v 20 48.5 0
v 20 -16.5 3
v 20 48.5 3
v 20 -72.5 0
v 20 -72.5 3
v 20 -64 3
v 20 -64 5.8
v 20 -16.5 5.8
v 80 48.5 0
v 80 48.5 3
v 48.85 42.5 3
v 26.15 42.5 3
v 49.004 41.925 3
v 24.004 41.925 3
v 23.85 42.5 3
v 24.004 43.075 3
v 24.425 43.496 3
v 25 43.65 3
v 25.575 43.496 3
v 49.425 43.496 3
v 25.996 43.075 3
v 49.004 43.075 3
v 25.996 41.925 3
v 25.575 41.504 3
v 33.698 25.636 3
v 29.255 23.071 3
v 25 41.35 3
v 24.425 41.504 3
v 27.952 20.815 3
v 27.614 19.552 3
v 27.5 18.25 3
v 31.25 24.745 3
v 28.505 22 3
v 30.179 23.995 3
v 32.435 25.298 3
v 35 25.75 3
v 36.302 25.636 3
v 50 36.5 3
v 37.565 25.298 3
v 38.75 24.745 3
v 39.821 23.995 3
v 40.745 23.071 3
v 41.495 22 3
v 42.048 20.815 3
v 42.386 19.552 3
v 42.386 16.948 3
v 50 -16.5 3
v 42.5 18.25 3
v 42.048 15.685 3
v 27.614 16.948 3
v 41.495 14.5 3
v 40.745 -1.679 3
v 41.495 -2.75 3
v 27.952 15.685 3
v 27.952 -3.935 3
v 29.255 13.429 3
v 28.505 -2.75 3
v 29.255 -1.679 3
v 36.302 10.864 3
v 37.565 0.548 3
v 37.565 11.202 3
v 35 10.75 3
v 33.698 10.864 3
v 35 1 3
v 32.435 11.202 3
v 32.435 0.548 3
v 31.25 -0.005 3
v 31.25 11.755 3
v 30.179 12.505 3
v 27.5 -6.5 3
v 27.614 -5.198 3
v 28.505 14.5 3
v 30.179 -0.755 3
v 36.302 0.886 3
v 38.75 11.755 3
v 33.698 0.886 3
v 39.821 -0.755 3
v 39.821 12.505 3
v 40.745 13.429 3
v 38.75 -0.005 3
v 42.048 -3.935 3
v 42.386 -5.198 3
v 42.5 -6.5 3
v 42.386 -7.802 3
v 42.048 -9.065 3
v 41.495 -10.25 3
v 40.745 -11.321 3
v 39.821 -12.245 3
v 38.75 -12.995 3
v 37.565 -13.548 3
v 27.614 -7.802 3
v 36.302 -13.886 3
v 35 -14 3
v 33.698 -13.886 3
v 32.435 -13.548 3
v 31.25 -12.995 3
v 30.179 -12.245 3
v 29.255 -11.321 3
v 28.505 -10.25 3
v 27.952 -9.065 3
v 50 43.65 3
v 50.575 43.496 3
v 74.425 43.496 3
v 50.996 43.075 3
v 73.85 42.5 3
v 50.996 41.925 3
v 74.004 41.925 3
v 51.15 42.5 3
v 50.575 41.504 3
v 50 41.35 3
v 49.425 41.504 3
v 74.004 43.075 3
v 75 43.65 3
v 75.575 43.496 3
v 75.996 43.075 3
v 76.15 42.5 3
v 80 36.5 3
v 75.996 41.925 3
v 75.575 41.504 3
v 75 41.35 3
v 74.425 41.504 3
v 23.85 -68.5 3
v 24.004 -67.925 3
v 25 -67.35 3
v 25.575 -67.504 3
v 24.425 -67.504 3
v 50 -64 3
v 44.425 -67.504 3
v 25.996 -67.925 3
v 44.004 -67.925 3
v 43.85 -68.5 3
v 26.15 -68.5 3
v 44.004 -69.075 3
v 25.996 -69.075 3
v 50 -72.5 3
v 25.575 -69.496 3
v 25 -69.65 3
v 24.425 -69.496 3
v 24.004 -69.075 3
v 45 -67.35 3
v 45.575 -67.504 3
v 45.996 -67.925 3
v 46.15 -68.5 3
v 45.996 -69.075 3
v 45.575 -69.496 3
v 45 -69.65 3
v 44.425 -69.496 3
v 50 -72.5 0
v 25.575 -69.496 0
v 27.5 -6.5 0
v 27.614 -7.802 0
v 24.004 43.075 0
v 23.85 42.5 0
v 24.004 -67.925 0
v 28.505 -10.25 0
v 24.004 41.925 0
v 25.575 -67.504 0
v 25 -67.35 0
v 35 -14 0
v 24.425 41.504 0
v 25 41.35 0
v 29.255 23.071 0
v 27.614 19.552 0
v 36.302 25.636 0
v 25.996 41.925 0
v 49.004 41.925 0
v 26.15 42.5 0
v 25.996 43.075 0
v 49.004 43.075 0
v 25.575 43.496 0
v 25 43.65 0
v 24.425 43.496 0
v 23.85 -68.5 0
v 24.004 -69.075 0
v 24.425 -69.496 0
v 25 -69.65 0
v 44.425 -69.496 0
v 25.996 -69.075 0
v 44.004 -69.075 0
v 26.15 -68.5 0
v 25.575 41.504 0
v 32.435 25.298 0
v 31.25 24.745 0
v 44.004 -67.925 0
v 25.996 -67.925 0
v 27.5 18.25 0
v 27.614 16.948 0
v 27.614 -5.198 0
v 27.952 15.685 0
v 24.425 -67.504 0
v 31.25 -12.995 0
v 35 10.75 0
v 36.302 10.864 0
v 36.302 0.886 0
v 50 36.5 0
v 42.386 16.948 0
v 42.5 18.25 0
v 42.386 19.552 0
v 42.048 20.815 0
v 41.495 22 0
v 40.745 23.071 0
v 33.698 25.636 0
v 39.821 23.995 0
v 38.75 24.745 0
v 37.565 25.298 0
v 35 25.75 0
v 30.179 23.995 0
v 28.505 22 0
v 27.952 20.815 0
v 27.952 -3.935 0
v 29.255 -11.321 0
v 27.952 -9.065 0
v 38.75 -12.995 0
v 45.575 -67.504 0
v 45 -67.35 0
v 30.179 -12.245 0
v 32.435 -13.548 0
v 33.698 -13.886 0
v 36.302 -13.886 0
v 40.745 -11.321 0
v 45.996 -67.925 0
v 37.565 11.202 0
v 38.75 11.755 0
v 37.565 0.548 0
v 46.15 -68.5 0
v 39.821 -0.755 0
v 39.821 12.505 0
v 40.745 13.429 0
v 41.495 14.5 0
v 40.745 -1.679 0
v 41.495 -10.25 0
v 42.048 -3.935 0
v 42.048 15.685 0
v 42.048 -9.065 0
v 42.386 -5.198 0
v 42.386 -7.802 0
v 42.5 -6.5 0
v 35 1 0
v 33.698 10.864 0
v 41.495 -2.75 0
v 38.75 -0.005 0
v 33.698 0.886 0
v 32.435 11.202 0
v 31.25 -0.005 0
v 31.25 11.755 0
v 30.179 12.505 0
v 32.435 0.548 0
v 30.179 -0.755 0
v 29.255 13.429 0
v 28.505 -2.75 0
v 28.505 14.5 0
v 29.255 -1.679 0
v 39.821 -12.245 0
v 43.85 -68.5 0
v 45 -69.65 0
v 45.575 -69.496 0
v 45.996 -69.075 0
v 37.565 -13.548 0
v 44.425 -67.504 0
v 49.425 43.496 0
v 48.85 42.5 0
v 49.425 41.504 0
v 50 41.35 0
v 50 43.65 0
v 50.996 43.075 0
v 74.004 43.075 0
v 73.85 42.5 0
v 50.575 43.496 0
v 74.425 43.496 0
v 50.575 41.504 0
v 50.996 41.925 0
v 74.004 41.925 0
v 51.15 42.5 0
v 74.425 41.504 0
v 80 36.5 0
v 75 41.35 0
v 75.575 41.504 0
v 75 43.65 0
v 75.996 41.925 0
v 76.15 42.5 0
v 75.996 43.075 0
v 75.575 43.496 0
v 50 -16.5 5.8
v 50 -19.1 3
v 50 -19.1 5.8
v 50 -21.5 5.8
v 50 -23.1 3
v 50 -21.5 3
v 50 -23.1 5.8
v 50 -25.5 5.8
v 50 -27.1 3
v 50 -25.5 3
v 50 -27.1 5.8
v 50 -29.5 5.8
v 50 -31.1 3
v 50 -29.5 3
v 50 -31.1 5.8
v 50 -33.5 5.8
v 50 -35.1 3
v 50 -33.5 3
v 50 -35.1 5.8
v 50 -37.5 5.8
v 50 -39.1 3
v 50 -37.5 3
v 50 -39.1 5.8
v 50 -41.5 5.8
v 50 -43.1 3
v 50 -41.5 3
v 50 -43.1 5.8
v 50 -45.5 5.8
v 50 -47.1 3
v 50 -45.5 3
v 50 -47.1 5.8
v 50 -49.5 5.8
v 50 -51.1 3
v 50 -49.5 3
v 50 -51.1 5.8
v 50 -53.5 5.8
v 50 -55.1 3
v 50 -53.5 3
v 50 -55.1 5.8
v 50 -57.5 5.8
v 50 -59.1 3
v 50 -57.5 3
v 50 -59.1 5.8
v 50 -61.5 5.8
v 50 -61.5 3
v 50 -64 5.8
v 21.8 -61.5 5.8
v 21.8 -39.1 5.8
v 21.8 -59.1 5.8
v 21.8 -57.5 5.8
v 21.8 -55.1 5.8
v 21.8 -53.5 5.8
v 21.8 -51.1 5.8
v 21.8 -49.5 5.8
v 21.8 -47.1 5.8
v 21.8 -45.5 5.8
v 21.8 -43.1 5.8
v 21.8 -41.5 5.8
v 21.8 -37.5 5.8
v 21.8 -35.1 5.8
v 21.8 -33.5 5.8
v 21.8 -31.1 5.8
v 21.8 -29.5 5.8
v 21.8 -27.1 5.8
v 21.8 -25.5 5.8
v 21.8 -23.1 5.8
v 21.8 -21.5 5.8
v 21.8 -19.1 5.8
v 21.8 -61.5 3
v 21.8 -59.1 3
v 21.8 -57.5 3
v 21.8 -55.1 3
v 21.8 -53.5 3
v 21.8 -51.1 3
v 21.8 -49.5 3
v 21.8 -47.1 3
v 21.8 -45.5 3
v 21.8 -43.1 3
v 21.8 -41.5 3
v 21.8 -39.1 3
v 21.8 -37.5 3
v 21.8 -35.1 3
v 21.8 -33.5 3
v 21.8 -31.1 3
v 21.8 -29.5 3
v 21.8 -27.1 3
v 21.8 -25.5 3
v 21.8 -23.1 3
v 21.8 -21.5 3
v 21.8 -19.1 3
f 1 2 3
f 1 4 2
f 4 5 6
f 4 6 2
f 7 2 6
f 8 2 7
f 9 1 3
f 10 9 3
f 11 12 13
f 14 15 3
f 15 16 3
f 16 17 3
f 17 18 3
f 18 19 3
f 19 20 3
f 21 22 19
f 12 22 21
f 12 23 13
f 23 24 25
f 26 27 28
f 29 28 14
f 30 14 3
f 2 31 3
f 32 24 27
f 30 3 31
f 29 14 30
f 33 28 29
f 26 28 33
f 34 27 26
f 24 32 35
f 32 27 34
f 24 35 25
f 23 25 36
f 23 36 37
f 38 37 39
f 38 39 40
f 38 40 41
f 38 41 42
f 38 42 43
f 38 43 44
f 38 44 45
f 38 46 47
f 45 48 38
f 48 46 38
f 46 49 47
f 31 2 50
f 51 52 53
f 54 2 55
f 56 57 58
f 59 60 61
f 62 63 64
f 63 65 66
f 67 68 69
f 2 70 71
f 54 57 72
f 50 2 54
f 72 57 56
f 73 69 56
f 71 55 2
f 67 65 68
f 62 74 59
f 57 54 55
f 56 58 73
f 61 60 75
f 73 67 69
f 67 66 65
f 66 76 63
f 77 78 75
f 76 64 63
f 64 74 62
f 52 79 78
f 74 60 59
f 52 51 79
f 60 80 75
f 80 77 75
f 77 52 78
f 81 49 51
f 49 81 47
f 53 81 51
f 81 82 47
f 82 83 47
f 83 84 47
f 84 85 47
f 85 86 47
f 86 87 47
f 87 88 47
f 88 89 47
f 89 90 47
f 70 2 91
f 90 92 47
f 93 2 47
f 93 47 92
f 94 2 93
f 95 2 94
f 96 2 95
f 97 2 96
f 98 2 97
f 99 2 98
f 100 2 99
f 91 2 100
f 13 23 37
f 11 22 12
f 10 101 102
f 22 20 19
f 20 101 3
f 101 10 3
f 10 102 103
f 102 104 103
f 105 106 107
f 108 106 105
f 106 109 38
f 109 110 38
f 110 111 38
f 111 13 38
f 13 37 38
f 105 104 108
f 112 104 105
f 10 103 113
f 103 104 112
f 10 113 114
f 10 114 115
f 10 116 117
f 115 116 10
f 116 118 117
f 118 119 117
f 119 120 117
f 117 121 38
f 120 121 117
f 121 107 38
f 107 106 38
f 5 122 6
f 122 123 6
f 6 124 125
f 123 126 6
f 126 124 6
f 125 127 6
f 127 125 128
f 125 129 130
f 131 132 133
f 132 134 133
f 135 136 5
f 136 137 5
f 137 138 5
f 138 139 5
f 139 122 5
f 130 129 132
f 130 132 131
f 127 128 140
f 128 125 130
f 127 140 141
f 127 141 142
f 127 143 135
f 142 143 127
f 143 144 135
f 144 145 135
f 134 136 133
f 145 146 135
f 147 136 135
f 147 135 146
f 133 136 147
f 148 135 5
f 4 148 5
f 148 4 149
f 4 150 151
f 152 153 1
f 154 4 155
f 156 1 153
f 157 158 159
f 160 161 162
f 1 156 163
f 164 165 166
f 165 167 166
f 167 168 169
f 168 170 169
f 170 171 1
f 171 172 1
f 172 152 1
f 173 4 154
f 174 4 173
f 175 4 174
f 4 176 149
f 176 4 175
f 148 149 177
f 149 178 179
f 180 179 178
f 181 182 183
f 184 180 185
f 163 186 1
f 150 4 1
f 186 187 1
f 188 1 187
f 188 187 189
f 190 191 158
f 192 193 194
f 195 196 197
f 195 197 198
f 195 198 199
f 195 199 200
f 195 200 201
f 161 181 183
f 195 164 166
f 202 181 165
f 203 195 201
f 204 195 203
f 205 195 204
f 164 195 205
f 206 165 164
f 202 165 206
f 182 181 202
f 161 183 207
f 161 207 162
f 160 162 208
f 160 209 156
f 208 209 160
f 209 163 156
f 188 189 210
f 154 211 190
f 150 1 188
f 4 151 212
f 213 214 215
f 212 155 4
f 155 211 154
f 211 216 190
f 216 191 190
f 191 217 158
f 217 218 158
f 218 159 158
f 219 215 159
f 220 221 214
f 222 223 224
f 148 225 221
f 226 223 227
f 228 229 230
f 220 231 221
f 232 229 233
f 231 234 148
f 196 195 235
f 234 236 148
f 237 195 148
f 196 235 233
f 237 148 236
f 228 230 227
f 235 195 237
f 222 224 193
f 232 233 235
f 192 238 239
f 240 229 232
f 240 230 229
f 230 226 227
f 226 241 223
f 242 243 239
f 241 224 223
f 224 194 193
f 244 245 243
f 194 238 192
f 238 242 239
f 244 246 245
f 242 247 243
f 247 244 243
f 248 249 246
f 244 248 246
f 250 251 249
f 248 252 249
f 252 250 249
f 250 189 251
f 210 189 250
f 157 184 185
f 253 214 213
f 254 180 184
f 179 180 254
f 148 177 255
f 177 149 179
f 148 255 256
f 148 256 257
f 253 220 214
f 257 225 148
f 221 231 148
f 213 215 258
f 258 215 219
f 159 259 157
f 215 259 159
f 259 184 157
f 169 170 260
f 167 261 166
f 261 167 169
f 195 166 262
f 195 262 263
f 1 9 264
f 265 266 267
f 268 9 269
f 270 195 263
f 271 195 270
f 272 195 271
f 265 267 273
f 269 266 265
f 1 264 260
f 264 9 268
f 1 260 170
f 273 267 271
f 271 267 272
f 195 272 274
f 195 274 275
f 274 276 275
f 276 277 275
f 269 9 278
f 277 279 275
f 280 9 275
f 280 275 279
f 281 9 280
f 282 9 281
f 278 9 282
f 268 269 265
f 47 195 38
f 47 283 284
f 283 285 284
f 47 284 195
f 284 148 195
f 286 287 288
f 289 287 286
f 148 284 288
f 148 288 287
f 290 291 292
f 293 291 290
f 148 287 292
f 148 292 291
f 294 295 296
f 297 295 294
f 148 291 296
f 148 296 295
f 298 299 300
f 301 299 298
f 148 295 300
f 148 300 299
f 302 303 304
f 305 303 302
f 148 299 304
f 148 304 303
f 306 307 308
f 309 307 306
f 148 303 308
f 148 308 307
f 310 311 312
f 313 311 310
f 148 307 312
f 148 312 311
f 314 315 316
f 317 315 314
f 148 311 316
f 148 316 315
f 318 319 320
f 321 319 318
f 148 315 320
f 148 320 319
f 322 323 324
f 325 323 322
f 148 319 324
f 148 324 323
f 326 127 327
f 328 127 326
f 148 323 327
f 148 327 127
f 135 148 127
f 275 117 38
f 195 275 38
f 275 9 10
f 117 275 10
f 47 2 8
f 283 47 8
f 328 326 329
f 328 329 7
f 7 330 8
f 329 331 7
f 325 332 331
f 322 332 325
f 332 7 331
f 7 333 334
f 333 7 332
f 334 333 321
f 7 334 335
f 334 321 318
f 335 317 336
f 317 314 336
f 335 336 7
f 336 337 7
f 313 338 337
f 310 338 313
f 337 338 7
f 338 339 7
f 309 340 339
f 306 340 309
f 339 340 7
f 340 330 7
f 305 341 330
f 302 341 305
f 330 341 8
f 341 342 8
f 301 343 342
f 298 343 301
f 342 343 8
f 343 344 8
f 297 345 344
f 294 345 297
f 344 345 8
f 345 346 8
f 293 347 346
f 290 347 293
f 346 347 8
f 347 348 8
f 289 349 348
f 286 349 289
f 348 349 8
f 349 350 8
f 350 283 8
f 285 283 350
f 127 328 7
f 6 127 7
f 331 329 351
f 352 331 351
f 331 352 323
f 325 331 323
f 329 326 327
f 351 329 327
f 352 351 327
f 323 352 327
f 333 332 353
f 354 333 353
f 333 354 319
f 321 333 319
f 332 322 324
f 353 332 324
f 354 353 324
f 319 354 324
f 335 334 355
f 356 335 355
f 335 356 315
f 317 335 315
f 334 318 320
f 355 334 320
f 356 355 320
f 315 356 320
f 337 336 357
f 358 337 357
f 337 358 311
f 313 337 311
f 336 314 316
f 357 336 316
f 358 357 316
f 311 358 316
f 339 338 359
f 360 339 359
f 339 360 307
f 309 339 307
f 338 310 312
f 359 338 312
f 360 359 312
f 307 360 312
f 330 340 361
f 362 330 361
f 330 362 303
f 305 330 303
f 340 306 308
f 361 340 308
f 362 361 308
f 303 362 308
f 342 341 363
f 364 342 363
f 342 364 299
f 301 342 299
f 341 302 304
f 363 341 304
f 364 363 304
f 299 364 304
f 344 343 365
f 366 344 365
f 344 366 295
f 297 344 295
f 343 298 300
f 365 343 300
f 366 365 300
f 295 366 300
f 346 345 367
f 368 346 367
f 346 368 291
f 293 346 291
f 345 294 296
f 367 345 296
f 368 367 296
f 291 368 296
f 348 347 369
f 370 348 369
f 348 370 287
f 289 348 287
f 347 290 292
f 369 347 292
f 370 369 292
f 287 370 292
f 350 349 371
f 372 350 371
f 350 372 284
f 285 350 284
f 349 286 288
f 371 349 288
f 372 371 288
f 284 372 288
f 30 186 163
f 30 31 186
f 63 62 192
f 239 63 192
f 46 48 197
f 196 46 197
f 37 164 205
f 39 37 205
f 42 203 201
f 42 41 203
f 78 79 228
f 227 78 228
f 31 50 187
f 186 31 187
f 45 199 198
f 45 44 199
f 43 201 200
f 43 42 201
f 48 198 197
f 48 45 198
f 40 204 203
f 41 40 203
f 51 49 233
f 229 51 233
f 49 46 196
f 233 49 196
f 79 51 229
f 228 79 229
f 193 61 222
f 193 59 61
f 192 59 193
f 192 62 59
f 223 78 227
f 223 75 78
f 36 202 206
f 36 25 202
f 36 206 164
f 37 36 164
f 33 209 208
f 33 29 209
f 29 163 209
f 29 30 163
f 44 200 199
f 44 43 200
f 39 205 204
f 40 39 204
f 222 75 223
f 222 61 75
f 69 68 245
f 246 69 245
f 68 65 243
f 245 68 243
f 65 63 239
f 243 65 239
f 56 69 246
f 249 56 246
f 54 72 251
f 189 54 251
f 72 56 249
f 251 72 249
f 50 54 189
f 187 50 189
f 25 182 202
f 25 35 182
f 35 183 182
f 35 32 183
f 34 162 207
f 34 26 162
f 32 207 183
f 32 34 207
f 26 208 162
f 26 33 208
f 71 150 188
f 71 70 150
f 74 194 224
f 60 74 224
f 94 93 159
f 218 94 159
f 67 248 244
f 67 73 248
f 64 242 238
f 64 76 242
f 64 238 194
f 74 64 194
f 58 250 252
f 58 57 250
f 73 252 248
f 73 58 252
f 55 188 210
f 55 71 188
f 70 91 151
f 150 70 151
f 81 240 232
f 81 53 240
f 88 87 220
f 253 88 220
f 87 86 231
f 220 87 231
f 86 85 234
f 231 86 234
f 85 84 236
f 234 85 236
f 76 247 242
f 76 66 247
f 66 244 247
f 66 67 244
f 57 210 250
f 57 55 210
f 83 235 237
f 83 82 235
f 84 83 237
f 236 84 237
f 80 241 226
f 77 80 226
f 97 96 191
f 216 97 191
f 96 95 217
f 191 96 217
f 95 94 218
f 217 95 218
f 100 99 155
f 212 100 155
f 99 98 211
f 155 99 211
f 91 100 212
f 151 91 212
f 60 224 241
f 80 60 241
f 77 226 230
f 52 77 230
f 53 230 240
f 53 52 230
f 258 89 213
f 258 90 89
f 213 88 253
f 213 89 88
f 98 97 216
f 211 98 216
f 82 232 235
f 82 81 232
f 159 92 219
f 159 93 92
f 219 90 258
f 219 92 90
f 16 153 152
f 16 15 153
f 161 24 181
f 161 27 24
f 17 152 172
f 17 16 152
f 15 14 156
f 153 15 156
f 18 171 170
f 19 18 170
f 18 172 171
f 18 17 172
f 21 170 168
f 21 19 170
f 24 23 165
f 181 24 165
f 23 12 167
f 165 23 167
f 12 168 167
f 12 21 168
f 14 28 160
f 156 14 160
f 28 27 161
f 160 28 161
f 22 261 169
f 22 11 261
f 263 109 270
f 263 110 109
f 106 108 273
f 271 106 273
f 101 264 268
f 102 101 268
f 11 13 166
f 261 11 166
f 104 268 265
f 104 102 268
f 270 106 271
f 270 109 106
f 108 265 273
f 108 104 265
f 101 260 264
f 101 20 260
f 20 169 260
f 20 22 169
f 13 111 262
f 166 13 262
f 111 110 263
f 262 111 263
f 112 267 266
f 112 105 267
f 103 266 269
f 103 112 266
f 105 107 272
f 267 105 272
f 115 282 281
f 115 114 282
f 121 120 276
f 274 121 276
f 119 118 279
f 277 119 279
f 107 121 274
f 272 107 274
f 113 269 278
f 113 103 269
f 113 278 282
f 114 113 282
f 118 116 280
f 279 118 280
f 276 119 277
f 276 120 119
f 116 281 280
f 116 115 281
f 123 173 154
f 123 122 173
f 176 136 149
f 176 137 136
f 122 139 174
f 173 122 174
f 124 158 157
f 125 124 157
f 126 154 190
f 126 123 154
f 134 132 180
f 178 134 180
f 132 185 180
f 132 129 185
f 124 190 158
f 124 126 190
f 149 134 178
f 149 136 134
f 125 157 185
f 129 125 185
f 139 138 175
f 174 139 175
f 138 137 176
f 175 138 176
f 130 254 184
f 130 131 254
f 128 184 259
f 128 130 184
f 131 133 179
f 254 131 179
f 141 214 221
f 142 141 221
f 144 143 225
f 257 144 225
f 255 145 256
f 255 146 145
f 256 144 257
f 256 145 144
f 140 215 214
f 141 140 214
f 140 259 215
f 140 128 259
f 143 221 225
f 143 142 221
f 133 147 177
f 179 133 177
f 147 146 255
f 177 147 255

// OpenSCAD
// Desktop ball bearing spool holder
// Written by Joe Cabana  3/1/2014
// Added bigger spool sizes 4/8/2014
// You are free to use and/or modify this software for non-comercial
// uses as long as you retain this message. Thanks.

// Print at .25 layer height, 25% infill, 2 extra shells

DoArms = 1;  // Set to non-zero to draw the outer bracket support arms, 0 to draw the rest of the stuff

Show = 0;  // Set to non-zero to show bearings

// Spool dimensions
SpoolCnt = 11;  // Number of spool sizes
SpoolWid = [85,81,77,73,69,65,61,57,53,49,45];  // Width of filament spool the first one must be the biggest, and the last one the smallest.
SpoolSpace = 1;  // Extra space on each side of the spool

// Mounting Latch dimensions
LatchWid = 45;  // Width of latching section

// Bearing mount dimensions
SplShdDia = 30;  // Diameter of spool guiding shoulder
SplShdThk = 2;  // Thickness of spool guiding shoulder
BearShdDia = 11;  // Diameter of bearing mount shoulder
BearShdThk = .25;  // Thickness of bearing mount shoulder
BearInDia = 8;  // Diameter of bearing center hole
BearOutDia = 22;  // Outer diameter of bearing
BearThk = 7;  // Thickness of the bearing
BearWashThk = 2.5;  // Thickness of bearing mounting washers

// Bracket dimensions
LatchOff = 0;  // Offset into bracket of latch slot
InBrkThk = 12;  // Thickness of bracket on back of replicator
OutBrkThk = 8;  // Thickness of bracket on outside
BrkWid = 100; // Width of bracket on back of replicator
InBrkHgt = 90;  // Height of bracket on back or replicator
OutBrkHgt = 30;  // Height of outside bracket
SlotDepth = 3; // Depth of slots to hold outer bracket
SlotWidth = 2; // Width of slots to hold outer bracket
SlotClear = .2;  // Clearance for outer bracket slots
ArmWid = (2 * SplShdThk) + (2 * OutBrkThk) + InBrkThk + SpoolWid[0] + SpoolSpace + SlotWidth + 1;  // Width of outer bracket arms
ArmThk = 3;  // Thickness of outer bracket arms

// Screw hole sizes
ScrewDia = 1.8; // Diameter of screw hole
ScrewClear = 2.3; // Diameter of screw clearance hole


	
	translate([OutBrkHgt/2+5,ArmWid/2-InBrkThk,ArmThk])
		rotate([180,0,0])
			Arm(1);

	




// Routine to draw the outer bracket mounting arm
module Arm(Invert = 0)
{
	SlotBlockWid = SpoolWid[0]-SpoolWid[SpoolCnt-1]+(3*SlotWidth) + 1.5;  // Width of block to hold slots

	difference()
	{
		// Arm
		union()
		{
			cube([OutBrkHgt,ArmWid,ArmThk]);  // Arm
			cube([OutBrkHgt*2,InBrkThk,ArmThk]);  // Extra bracing
			if (Invert)
				translate([0,ArmWid-SlotBlockWid-OutBrkThk-.5,-(SlotDepth-SlotClear)])
					cube([OutBrkHgt,SlotBlockWid,ArmThk+SlotDepth-SlotClear]);  // Outer bracket support
			else
				translate([0,ArmWid-SlotBlockWid-OutBrkThk-.5,0])
					cube([OutBrkHgt,SlotBlockWid,ArmThk+SlotDepth-SlotClear]);  // Outer bracket support
		}

		// Outer bracket slots
		for (cnt = [0 : (SpoolCnt-1)])
			if (Invert)
				translate([SlotWidth-SlotClear,(2*SplShdThk)+OutBrkThk+InBrkThk+SpoolWid[cnt]+SpoolSpace-(SlotWidth+(2*SlotClear)),-(ArmThk+1)])
					cube([OutBrkHgt,SlotWidth+(2*SlotClear),SlotDepth+1]);  // Outer bracket support
			else
				translate([SlotWidth-SlotClear,(2*SplShdThk)+OutBrkThk+InBrkThk+SpoolWid[cnt]+SpoolSpace-(SlotWidth+(2*SlotClear)),ArmThk])
					cube([OutBrkHgt,SlotWidth+(2*SlotClear),SlotDepth+1]);  // Outer bracket support

		// Holes
		translate([OutBrkHgt/2,ArmWid/4,-1])
			cylinder(ArmThk+2,OutBrkHgt/4,OutBrkHgt/4,$fn=36);
		translate([OutBrkHgt/2,ArmWid/2.2,-1])
			cylinder(ArmThk+2,OutBrkHgt/4,OutBrkHgt/4,$fn=36);
//		translate([OutBrkHgt/2,ArmWid/1.5,-1])
//			cylinder(ArmThk+2,OutBrkHgt/4,OutBrkHgt/4,$fn=36);

		// Screw holes
		translate([5,InBrkThk/2,-1])
			cylinder(ArmThk+2,ScrewClear/2,ScrewClear/2,$fn=12);
		translate([OutBrkHgt,InBrkThk/2,-1])
			cylinder(ArmThk+2,ScrewClear/2,ScrewClear/2,$fn=12);
		translate([2*OutBrkHgt-5,InBrkThk/2,-1])
			cylinder(ArmThk+2,ScrewClear/2,ScrewClear/2,$fn=12);
		translate([5,ArmWid-OutBrkThk/2,-1])
			cylinder(ArmThk+2,ScrewClear/2,ScrewClear/2,$fn=12);
		translate([OutBrkHgt-5,ArmWid-OutBrkThk/2,-1])
			cylinder(ArmThk+2,ScrewClear/2,ScrewClear/2,$fn=12);
	}
}

// Routine to draw the outside bracket
module OutBracket(Show = 0)
{
	difference()
	{
		union()
		{
			difference()
			{
				// Outside plate
				cube([OutBrkHgt,BrkWid,OutBrkThk]);
		
				// Hole in center
				translate([5,SplShdDia,-1])
					cube([OutBrkHgt-10,BrkWid-2*SplShdDia,OutBrkThk+2]);
			}
				// Bearing mounts
			translate([OutBrkHgt-SplShdDia/2,SplShdDia/2,0])
				BearingMnt(Show,OutBrkThk);
			translate([OutBrkHgt-SplShdDia/2,BrkWid-SplShdDia/2,0])
				BearingMnt(Show,OutBrkThk);
		}
		
		// Cut down for slots
		translate([-1,0,SlotWidth])
			cube([OutBrkHgt+2,SlotDepth,OutBrkThk+SplShdThk]);
		translate([-1,BrkWid-SlotDepth,SlotWidth])
			cube([OutBrkHgt+2,SlotDepth,OutBrkThk+SplShdThk]);
		translate([-1,BrkWid-SlotDepth,-1])
			cube([SlotWidth+1,SlotDepth,OutBrkThk+SplShdThk+2]);
		translate([-1,0,-1])
			cube([SlotWidth+1,SlotDepth,OutBrkThk+SplShdThk+2]);

		// Trim for clearance
		translate([-1,SlotClear-SlotDepth,-1])
			cube([OutBrkHgt+1,SlotDepth,OutBrkThk+SplShdThk+2]);
		translate([-1,BrkWid-SlotClear,-1])
			cube([OutBrkHgt+1,SlotDepth,OutBrkThk+SplShdThk+2]);
	}
}

// Routine to draw the end plate
module EndPlate()
{
	difference()
	{
		// Outside plate
		cube([OutBrkHgt,BrkWid,OutBrkThk]);

		// Holes
		translate([OutBrkHgt/2,BrkWid/4,-1])
			cylinder(OutBrkThk+2,OutBrkHgt/3,OutBrkHgt/3,$fn=36);
		translate([OutBrkHgt/2,BrkWid/2,-1])
			cylinder(OutBrkThk+2,OutBrkHgt/3,OutBrkHgt/3,$fn=36);
		translate([OutBrkHgt/2,BrkWid-BrkWid/4,-1])
			cylinder(OutBrkThk+2,OutBrkHgt/3,OutBrkHgt/3,$fn=36);

		// Screw holes
		translate([5,0,OutBrkThk/2])
			rotate([90,0,0])
				cylinder(20,ScrewDia/2,ScrewDia/2,true,$fn=8);
		translate([OutBrkHgt-5,0,OutBrkThk/2])
			rotate([90,0,0])
				cylinder(20,ScrewDia/2,ScrewDia/2,true,$fn=8);
		translate([5,BrkWid,OutBrkThk/2])
			rotate([90,0,0])
				cylinder(20,ScrewDia/2,ScrewDia/2,true,$fn=8);
		translate([OutBrkHgt-5,BrkWid,OutBrkThk/2])
			rotate([90,0,0])
				cylinder(20,ScrewDia/2,ScrewDia/2,true,$fn=8);
	}
}

// Routine to draw the bearing washer
module BearWash()
{
	difference()
	{
		// Washer
		cylinder(BearWashThk,BearShdDia/2,BearShdDia/2,$fn=36);
		// Hole for screw
		cylinder(BearWashThk*3,ScrewClear/2,ScrewClear/2,true,$fn=12);
	}
}

// Routine to draw back mounting bracket
module BackBracket()
{
	difference()
	{
		// Back plate
		cube([InBrkHgt,BrkWid,InBrkThk]);


		// Chop top corners
		rotate([0,0,45])
			cube([BrkWid/3,BrkWid/3,InBrkHgt*3],true);
		translate([0,BrkWid,0])
			rotate([0,0,45])
				cube([BrkWid/3,BrkWid/3,InBrkHgt*3],true);

		// Hole in center
		translate([LatchOff+10,5,-1])
			difference()
			{
				cube([InBrkHgt-(LatchOff+10)-SplShdDia/4,BrkWid-10,InBrkThk+2]);
				rotate([0,0,45])
					cube([LatchWid/2,LatchWid/2,InBrkHgt*3],true);
				translate([0,BrkWid-10,0])
					rotate([0,0,45])
						cube([LatchWid/2,LatchWid/2,InBrkHgt*3],true);
			}

		// Screw holes
		translate([InBrkHgt-5,0,InBrkThk/2])
			rotate([90,0,0])
				cylinder(20,ScrewDia/2,ScrewDia/2,true,$fn=8);
		translate([InBrkHgt-OutBrkHgt,0,InBrkThk/2])
			rotate([90,0,0])
				cylinder(20,ScrewDia/2,ScrewDia/2,true,$fn=8);
		translate([InBrkHgt-(2*OutBrkHgt-5),0,InBrkThk/2])
			rotate([90,0,0])
				cylinder(20,ScrewDia/2,ScrewDia/2,true,$fn=8);
		translate([InBrkHgt-5,BrkWid,InBrkThk/2])
			rotate([90,0,0])
				cylinder(20,ScrewDia/2,ScrewDia/2,true,$fn=8);
		translate([InBrkHgt-OutBrkHgt,BrkWid,InBrkThk/2])
			rotate([90,0,0])
				cylinder(20,ScrewDia/2,ScrewDia/2,true,$fn=8);
		translate([InBrkHgt-(2*OutBrkHgt-5),BrkWid,InBrkThk/2])
			rotate([90,0,0])
				cylinder(20,ScrewDia/2,ScrewDia/2,true,$fn=8);
	}
}

// Routine to draw he bearing mount
module BearingMnt(Show = 0,BrkThk = 1)
{
	difference()
	{
		union()
		{
			// Shoulder to keep spool off of bracket
			cylinder(BrkThk+SplShdThk,SplShdDia/2,SplShdDia/2,$fn=36);
			// Shoulder to keep bearing from rubbing
			cylinder(BrkThk+BearShdThk+SplShdThk,BearShdDia/2,BearShdDia/2,$fn=36);
			// Mounting shaft
			cylinder(BrkThk+BearThk+BearShdThk+SplShdThk,BearInDia/2,BearInDia/2,$fn=12);
		}

		// Screw hole
		cylinder(50,ScrewDia/2,ScrewDia/2,true,$fn8);
	}

	if (Show)  // Show the bearing if needed
	{
		translate([0,0,BearShdThk+SplShdThk])
			color("Blue",.5)
				difference()
				{
					// Bearing minus the hole
					cylinder(BrkThk+BearThk,BearOutDia/2,BearOutDia/2,$fn=36);
					translate([0,0,-1])
						cylinder(BearThk+2,BearInDia/2,BearInDia/2,$fn=36);
				}
	}
}
